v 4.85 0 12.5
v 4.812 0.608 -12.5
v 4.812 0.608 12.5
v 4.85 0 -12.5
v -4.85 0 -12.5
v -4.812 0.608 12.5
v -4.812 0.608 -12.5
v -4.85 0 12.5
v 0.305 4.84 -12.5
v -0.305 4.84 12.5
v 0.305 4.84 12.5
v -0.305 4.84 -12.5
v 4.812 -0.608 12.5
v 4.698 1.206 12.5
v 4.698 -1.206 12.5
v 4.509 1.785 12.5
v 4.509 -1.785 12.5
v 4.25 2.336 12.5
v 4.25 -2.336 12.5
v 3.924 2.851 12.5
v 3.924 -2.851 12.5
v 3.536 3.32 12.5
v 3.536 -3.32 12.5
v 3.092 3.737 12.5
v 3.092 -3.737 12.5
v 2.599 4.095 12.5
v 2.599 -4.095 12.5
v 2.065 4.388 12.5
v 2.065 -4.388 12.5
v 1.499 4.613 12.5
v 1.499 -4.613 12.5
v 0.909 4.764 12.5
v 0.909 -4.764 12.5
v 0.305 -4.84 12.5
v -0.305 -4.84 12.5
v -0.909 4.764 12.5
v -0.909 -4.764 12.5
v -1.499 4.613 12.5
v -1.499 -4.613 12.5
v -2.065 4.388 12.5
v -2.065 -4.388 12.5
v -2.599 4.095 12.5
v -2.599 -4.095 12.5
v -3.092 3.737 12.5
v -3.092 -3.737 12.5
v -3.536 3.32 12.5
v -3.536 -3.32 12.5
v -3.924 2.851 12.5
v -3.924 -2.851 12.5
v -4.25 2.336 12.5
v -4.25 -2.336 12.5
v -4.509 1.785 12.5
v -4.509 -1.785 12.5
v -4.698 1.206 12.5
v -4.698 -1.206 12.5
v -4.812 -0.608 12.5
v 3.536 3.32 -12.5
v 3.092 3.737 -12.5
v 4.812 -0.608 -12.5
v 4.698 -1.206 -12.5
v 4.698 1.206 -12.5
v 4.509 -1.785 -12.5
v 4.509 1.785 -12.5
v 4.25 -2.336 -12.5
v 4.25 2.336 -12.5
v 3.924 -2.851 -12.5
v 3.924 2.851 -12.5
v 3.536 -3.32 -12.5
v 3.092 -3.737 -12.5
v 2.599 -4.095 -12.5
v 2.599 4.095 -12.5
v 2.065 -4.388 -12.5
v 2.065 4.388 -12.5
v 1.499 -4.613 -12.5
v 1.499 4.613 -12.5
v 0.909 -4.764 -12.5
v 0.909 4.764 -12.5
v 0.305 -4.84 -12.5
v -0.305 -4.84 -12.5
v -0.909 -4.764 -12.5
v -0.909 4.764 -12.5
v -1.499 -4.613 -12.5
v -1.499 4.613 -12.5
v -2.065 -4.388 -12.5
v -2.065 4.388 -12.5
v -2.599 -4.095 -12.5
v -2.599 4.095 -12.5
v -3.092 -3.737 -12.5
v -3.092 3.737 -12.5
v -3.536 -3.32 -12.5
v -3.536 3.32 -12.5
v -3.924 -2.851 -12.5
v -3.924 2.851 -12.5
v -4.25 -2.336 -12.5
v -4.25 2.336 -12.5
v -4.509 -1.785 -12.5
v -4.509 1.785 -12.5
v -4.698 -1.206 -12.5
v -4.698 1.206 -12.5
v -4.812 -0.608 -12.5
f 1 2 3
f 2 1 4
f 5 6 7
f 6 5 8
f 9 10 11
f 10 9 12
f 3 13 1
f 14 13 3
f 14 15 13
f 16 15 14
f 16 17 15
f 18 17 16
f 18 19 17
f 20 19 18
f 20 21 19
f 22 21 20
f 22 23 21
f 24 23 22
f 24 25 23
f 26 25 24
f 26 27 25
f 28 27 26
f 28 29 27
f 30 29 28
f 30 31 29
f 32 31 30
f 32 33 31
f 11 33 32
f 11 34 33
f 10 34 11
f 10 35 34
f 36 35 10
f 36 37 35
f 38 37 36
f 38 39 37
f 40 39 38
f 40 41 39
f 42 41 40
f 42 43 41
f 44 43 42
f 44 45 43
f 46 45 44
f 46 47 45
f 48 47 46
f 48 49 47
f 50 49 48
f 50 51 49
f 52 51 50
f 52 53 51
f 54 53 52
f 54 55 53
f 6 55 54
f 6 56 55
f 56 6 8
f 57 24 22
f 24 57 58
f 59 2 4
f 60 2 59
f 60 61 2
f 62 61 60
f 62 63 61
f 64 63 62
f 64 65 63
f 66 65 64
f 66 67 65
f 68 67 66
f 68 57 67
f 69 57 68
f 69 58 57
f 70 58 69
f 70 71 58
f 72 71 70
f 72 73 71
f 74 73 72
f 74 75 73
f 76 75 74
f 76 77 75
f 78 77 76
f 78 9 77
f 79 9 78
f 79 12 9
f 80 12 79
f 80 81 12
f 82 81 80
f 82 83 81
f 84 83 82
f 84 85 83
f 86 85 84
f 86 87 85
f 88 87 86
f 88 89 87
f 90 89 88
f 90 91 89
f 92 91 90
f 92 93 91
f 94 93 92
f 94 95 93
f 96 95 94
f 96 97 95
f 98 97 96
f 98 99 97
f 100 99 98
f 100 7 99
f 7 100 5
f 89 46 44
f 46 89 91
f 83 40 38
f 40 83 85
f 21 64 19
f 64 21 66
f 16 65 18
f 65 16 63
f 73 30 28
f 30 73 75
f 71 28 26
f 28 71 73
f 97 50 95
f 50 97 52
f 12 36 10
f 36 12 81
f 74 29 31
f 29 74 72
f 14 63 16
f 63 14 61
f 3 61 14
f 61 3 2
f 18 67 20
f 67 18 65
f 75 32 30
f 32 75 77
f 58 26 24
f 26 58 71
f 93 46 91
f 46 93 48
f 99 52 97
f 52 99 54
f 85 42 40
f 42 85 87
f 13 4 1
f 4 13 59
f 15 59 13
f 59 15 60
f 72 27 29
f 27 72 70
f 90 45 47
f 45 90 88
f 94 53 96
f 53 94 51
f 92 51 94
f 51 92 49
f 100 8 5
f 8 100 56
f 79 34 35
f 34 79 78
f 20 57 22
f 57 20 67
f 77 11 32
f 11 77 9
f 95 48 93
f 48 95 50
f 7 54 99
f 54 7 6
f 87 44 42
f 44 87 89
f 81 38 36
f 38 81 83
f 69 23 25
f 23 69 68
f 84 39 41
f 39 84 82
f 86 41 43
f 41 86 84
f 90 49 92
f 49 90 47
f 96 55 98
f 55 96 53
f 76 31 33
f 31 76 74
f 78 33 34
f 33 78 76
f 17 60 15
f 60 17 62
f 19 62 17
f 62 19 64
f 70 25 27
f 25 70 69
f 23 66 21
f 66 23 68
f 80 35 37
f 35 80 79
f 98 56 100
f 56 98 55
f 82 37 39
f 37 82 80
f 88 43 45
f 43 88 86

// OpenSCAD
$fn = 50;


difference() {
	union() {
		translate(v = [0, 0, -12.5000000000]) {
			cylinder(h = 25, r = 4.8500000000);
		}
	}
	union() {
		translate(v = [0, 0, -100.0000000000]) {
			cylinder(h = 200, r = 0);
		}
	}
}
